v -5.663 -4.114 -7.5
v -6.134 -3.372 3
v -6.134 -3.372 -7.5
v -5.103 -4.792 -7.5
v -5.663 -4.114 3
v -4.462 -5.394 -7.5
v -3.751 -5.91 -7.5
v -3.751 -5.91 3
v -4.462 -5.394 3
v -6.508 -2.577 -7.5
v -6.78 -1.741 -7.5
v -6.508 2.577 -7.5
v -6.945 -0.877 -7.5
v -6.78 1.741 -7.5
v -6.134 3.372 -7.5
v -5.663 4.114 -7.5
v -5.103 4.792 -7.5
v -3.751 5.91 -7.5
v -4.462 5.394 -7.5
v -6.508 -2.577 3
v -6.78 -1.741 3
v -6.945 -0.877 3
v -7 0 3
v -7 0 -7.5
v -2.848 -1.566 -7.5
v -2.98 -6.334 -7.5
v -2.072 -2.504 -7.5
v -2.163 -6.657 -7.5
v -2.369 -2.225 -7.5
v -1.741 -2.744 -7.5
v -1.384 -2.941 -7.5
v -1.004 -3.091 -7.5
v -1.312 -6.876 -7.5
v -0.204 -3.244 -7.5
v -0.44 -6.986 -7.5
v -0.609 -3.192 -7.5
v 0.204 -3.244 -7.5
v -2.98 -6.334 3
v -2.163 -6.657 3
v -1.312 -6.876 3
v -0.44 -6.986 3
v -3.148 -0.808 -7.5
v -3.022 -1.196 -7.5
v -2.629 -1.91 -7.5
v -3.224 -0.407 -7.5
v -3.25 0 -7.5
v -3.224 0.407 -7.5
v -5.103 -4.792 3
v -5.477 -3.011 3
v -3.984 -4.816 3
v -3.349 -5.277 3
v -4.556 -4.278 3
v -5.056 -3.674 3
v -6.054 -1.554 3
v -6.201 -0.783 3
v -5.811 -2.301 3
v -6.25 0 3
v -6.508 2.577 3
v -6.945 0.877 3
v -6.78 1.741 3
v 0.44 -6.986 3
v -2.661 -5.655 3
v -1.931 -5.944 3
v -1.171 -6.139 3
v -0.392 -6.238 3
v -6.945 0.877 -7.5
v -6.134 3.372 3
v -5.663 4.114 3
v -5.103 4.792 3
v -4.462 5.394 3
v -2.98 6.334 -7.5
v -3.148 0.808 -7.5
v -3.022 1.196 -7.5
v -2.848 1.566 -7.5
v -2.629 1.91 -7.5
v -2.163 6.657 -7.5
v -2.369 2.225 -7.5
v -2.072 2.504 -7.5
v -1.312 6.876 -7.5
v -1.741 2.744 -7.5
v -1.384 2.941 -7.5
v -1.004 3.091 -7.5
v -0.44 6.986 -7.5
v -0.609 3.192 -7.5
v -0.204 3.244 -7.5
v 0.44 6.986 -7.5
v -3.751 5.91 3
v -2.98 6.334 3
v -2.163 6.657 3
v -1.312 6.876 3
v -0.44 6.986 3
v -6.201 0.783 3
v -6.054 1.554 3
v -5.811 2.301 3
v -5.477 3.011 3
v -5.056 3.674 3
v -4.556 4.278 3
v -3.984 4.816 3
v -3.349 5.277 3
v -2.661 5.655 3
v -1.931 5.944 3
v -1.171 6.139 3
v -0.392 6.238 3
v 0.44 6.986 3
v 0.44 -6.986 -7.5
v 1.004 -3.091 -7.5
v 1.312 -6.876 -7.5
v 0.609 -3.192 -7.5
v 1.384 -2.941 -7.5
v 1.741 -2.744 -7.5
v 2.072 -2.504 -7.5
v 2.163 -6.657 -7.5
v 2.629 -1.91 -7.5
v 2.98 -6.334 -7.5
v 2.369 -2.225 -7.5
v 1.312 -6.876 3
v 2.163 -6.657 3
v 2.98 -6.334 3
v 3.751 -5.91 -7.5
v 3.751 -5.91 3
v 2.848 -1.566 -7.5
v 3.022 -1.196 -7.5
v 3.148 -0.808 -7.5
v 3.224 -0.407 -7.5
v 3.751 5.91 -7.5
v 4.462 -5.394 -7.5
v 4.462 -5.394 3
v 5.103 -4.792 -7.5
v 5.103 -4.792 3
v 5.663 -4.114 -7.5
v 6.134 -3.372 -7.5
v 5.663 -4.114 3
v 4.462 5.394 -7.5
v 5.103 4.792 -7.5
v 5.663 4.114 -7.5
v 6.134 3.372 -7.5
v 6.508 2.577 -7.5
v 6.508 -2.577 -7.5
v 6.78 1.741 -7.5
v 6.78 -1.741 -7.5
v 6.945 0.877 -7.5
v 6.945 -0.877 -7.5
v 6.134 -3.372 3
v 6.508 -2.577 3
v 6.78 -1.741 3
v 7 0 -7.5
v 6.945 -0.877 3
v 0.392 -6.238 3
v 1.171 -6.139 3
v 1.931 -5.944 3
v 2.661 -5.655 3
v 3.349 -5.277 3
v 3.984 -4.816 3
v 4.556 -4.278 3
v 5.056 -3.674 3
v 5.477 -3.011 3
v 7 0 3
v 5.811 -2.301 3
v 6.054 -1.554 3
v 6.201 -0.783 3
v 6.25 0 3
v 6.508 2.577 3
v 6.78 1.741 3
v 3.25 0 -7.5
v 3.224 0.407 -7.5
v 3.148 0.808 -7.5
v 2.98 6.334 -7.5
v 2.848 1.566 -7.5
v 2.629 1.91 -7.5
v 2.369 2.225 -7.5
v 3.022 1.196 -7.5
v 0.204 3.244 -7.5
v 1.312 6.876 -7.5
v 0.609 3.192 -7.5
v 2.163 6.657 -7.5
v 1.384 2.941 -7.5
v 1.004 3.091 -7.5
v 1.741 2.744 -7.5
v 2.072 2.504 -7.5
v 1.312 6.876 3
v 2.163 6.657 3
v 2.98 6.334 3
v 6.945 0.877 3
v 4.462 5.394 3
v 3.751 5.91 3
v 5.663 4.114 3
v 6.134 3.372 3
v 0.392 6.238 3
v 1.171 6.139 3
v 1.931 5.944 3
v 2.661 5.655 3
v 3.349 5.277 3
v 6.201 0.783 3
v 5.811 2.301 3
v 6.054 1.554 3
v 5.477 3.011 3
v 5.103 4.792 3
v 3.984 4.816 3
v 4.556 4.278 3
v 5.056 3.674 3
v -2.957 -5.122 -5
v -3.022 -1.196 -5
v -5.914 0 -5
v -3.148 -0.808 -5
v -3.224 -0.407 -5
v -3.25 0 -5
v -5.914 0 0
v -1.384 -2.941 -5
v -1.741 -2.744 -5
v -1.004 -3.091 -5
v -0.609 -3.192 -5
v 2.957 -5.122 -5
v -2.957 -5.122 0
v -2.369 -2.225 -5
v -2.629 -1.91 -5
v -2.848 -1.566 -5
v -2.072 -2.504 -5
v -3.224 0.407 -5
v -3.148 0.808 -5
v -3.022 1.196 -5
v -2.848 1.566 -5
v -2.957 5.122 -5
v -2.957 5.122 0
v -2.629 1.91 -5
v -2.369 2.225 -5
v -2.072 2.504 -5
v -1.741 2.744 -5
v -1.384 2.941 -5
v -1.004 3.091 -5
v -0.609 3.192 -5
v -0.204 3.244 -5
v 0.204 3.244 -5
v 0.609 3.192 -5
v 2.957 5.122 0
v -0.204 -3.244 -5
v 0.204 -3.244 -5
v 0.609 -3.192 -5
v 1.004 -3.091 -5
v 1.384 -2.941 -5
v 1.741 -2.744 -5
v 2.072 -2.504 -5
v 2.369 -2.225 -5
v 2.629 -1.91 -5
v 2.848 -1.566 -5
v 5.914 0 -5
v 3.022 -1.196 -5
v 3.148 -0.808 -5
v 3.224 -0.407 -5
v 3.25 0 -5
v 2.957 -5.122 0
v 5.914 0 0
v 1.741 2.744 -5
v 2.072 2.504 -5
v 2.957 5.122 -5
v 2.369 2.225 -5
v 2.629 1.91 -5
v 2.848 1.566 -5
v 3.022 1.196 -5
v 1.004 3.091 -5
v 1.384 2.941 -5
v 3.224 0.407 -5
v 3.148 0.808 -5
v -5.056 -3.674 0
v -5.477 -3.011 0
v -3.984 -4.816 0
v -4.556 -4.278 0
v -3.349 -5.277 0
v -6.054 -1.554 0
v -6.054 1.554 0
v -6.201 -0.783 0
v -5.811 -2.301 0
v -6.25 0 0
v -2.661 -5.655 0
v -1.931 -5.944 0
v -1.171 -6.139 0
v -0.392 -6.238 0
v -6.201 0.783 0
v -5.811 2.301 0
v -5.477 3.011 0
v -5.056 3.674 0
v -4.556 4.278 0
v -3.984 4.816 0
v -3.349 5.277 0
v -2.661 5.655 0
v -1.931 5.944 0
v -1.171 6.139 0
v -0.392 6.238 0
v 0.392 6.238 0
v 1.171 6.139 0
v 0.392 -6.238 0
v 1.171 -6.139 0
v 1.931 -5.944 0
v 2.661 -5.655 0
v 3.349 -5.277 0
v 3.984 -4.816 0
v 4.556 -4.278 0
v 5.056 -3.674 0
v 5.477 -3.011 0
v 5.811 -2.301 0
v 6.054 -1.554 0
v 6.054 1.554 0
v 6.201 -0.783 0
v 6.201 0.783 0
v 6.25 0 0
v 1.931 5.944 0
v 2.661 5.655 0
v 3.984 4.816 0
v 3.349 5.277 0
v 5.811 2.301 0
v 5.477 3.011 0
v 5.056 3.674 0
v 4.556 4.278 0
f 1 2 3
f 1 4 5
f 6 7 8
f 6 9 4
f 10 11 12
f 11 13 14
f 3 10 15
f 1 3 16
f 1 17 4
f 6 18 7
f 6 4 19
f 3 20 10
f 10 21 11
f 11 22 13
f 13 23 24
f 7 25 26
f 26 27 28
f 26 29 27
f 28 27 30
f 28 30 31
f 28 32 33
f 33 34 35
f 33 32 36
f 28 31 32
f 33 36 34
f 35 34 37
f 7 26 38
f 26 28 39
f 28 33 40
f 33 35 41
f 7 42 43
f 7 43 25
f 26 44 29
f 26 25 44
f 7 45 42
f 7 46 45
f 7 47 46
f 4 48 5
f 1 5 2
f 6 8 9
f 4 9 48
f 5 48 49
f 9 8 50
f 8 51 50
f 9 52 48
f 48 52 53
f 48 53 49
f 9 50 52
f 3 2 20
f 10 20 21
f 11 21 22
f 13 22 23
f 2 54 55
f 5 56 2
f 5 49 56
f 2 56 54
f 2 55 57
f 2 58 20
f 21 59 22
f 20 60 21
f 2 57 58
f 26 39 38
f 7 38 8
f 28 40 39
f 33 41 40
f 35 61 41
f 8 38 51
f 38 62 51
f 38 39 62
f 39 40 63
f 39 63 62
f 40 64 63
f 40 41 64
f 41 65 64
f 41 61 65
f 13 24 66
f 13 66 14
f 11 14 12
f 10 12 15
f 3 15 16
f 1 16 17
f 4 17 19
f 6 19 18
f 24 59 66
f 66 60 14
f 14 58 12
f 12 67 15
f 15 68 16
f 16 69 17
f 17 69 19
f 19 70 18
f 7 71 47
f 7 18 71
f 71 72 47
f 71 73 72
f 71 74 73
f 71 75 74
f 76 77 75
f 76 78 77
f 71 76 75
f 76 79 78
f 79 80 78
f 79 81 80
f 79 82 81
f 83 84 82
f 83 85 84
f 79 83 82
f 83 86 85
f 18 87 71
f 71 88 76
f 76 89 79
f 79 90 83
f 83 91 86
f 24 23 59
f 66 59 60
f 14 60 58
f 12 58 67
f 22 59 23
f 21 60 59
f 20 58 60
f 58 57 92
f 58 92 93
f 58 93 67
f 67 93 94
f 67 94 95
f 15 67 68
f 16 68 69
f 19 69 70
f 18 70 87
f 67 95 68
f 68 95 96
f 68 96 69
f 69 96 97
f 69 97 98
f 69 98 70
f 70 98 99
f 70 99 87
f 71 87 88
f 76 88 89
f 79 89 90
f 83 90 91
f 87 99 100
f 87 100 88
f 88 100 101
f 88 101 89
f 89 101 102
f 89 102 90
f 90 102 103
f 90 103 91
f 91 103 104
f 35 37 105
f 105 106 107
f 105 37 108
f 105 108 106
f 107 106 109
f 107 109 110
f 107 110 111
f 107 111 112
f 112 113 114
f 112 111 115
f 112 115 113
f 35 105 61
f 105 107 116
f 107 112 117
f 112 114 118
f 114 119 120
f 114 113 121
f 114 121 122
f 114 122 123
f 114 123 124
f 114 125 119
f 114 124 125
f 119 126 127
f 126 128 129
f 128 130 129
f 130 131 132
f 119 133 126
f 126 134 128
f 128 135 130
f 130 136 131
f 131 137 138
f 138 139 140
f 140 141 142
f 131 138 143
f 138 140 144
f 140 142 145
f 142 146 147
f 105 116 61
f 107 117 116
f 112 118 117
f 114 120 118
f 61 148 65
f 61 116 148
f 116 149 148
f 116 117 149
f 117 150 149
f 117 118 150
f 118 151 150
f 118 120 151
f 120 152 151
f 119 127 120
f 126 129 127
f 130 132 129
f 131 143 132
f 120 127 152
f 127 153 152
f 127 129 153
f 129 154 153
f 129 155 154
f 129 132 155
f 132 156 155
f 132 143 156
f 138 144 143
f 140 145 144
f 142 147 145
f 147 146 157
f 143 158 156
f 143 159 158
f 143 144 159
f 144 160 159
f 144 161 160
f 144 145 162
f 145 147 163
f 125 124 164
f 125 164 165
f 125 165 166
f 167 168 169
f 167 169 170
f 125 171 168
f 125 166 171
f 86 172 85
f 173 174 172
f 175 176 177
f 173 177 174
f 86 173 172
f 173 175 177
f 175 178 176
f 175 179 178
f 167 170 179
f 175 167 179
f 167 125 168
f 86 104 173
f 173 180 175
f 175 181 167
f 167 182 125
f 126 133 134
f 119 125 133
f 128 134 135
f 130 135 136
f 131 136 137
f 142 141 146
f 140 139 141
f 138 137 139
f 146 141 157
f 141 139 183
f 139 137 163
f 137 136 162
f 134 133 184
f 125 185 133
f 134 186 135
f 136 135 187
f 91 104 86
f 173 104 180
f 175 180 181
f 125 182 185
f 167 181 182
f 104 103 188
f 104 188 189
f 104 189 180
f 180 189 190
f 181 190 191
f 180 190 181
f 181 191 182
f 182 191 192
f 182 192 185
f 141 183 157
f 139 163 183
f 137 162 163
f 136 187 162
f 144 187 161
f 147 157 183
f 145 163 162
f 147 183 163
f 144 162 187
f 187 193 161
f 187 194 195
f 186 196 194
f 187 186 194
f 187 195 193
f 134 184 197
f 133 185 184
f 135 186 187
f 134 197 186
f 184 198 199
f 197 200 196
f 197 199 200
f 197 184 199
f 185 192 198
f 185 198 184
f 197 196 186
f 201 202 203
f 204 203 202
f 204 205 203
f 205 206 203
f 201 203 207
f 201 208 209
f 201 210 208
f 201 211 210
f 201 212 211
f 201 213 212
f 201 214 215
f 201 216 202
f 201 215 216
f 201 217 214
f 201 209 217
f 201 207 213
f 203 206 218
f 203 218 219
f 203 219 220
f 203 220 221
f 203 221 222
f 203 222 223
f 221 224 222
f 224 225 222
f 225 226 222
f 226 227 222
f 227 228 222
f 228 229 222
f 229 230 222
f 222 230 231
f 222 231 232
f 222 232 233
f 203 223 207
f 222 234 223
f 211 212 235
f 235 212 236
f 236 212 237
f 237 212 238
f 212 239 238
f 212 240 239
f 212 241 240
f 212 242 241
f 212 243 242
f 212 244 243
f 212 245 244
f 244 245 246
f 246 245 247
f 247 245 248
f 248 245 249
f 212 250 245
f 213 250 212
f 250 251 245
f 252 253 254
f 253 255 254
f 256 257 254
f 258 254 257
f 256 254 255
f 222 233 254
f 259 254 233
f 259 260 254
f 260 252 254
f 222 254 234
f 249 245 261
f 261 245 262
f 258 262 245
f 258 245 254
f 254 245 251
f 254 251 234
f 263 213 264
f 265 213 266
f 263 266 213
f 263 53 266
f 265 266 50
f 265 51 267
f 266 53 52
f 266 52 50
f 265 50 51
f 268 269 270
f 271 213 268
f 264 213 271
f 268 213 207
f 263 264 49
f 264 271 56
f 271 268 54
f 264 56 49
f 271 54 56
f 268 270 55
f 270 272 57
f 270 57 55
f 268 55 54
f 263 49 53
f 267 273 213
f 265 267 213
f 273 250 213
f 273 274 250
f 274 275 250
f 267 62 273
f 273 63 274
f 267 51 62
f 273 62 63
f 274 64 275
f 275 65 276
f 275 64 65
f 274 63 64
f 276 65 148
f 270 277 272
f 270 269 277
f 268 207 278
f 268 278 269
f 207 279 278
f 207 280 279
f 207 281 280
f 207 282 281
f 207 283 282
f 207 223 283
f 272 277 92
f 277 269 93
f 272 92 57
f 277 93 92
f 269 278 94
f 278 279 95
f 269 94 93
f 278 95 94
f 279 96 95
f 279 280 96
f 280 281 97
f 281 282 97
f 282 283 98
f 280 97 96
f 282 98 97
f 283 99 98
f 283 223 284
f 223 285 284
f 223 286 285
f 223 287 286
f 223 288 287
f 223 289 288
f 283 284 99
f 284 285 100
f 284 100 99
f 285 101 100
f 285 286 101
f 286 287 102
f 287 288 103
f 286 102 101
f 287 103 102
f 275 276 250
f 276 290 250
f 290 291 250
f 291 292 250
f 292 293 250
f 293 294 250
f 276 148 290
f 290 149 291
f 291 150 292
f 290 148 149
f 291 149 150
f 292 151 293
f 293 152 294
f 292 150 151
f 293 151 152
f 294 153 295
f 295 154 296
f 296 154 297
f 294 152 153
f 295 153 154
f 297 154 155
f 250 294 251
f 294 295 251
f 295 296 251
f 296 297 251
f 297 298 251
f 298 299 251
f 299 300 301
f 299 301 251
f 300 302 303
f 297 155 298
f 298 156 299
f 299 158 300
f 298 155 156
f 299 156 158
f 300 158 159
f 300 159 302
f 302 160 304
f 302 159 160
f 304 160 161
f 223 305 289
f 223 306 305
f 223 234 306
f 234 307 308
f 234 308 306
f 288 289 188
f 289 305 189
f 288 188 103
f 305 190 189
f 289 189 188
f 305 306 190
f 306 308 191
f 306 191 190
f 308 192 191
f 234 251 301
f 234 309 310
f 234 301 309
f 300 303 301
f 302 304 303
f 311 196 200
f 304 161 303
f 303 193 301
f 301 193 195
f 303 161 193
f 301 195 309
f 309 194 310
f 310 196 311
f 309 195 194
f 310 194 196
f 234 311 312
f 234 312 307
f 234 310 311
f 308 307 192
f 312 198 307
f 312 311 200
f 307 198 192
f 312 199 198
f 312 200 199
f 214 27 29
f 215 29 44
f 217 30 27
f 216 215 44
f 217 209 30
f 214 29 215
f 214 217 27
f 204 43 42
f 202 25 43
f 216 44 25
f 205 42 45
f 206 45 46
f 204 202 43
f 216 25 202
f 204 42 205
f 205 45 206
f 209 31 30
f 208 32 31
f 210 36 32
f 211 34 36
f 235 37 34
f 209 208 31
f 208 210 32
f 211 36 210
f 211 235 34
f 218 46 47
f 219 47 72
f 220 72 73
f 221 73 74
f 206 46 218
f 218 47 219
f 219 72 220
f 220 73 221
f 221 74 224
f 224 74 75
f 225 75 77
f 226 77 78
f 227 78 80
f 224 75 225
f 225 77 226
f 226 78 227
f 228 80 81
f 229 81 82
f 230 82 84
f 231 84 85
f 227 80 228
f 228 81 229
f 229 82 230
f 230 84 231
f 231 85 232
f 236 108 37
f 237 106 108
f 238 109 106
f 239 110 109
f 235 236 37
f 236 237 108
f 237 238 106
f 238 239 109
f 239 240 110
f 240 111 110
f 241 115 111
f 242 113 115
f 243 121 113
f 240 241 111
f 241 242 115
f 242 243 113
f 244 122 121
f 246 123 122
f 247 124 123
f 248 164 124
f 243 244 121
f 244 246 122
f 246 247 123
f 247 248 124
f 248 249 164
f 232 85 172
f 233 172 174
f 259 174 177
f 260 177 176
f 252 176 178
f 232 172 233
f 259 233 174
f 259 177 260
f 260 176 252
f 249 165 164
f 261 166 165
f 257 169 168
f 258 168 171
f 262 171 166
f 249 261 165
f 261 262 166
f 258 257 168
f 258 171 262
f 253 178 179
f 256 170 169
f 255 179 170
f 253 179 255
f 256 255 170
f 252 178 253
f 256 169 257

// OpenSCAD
$fn = 50;

difference() {
	union() {
		translate(v = [0, 0, -7.5]) {
			cylinder(h = 10.5, r = 7.0);
		}
		#translate(v = [0, 0, -9.0]) {
			cylinder(h = 9, r = 2.875);
		}
	}
	union() {
		translate(v = [0, 0, 0]) {
			rotate(a = [0, 0, 0]) {
				difference() {
					union() {
						translate(v = [0, 0, -5]) {
							linear_extrude(height = 5) {
								polygon(points = [[5.914249999999999, 0.0], [2.957125, 5.1218907443321156], [-2.9571249999999982, 5.1218907443321156], [-5.914249999999999, 7.242867331857232e-16], [-2.9571250000000022, -5.121890744332115], [2.9571249999999956, -5.121890744332118]]);
							}
						}
					}
					union();
				}
			}
		}
		#cylinder(h = 3, r = 6.25);
		#translate(v = [0, 0, -100.0]) {
			cylinder(h = 200, r = 3.25);
		}
	}
}
